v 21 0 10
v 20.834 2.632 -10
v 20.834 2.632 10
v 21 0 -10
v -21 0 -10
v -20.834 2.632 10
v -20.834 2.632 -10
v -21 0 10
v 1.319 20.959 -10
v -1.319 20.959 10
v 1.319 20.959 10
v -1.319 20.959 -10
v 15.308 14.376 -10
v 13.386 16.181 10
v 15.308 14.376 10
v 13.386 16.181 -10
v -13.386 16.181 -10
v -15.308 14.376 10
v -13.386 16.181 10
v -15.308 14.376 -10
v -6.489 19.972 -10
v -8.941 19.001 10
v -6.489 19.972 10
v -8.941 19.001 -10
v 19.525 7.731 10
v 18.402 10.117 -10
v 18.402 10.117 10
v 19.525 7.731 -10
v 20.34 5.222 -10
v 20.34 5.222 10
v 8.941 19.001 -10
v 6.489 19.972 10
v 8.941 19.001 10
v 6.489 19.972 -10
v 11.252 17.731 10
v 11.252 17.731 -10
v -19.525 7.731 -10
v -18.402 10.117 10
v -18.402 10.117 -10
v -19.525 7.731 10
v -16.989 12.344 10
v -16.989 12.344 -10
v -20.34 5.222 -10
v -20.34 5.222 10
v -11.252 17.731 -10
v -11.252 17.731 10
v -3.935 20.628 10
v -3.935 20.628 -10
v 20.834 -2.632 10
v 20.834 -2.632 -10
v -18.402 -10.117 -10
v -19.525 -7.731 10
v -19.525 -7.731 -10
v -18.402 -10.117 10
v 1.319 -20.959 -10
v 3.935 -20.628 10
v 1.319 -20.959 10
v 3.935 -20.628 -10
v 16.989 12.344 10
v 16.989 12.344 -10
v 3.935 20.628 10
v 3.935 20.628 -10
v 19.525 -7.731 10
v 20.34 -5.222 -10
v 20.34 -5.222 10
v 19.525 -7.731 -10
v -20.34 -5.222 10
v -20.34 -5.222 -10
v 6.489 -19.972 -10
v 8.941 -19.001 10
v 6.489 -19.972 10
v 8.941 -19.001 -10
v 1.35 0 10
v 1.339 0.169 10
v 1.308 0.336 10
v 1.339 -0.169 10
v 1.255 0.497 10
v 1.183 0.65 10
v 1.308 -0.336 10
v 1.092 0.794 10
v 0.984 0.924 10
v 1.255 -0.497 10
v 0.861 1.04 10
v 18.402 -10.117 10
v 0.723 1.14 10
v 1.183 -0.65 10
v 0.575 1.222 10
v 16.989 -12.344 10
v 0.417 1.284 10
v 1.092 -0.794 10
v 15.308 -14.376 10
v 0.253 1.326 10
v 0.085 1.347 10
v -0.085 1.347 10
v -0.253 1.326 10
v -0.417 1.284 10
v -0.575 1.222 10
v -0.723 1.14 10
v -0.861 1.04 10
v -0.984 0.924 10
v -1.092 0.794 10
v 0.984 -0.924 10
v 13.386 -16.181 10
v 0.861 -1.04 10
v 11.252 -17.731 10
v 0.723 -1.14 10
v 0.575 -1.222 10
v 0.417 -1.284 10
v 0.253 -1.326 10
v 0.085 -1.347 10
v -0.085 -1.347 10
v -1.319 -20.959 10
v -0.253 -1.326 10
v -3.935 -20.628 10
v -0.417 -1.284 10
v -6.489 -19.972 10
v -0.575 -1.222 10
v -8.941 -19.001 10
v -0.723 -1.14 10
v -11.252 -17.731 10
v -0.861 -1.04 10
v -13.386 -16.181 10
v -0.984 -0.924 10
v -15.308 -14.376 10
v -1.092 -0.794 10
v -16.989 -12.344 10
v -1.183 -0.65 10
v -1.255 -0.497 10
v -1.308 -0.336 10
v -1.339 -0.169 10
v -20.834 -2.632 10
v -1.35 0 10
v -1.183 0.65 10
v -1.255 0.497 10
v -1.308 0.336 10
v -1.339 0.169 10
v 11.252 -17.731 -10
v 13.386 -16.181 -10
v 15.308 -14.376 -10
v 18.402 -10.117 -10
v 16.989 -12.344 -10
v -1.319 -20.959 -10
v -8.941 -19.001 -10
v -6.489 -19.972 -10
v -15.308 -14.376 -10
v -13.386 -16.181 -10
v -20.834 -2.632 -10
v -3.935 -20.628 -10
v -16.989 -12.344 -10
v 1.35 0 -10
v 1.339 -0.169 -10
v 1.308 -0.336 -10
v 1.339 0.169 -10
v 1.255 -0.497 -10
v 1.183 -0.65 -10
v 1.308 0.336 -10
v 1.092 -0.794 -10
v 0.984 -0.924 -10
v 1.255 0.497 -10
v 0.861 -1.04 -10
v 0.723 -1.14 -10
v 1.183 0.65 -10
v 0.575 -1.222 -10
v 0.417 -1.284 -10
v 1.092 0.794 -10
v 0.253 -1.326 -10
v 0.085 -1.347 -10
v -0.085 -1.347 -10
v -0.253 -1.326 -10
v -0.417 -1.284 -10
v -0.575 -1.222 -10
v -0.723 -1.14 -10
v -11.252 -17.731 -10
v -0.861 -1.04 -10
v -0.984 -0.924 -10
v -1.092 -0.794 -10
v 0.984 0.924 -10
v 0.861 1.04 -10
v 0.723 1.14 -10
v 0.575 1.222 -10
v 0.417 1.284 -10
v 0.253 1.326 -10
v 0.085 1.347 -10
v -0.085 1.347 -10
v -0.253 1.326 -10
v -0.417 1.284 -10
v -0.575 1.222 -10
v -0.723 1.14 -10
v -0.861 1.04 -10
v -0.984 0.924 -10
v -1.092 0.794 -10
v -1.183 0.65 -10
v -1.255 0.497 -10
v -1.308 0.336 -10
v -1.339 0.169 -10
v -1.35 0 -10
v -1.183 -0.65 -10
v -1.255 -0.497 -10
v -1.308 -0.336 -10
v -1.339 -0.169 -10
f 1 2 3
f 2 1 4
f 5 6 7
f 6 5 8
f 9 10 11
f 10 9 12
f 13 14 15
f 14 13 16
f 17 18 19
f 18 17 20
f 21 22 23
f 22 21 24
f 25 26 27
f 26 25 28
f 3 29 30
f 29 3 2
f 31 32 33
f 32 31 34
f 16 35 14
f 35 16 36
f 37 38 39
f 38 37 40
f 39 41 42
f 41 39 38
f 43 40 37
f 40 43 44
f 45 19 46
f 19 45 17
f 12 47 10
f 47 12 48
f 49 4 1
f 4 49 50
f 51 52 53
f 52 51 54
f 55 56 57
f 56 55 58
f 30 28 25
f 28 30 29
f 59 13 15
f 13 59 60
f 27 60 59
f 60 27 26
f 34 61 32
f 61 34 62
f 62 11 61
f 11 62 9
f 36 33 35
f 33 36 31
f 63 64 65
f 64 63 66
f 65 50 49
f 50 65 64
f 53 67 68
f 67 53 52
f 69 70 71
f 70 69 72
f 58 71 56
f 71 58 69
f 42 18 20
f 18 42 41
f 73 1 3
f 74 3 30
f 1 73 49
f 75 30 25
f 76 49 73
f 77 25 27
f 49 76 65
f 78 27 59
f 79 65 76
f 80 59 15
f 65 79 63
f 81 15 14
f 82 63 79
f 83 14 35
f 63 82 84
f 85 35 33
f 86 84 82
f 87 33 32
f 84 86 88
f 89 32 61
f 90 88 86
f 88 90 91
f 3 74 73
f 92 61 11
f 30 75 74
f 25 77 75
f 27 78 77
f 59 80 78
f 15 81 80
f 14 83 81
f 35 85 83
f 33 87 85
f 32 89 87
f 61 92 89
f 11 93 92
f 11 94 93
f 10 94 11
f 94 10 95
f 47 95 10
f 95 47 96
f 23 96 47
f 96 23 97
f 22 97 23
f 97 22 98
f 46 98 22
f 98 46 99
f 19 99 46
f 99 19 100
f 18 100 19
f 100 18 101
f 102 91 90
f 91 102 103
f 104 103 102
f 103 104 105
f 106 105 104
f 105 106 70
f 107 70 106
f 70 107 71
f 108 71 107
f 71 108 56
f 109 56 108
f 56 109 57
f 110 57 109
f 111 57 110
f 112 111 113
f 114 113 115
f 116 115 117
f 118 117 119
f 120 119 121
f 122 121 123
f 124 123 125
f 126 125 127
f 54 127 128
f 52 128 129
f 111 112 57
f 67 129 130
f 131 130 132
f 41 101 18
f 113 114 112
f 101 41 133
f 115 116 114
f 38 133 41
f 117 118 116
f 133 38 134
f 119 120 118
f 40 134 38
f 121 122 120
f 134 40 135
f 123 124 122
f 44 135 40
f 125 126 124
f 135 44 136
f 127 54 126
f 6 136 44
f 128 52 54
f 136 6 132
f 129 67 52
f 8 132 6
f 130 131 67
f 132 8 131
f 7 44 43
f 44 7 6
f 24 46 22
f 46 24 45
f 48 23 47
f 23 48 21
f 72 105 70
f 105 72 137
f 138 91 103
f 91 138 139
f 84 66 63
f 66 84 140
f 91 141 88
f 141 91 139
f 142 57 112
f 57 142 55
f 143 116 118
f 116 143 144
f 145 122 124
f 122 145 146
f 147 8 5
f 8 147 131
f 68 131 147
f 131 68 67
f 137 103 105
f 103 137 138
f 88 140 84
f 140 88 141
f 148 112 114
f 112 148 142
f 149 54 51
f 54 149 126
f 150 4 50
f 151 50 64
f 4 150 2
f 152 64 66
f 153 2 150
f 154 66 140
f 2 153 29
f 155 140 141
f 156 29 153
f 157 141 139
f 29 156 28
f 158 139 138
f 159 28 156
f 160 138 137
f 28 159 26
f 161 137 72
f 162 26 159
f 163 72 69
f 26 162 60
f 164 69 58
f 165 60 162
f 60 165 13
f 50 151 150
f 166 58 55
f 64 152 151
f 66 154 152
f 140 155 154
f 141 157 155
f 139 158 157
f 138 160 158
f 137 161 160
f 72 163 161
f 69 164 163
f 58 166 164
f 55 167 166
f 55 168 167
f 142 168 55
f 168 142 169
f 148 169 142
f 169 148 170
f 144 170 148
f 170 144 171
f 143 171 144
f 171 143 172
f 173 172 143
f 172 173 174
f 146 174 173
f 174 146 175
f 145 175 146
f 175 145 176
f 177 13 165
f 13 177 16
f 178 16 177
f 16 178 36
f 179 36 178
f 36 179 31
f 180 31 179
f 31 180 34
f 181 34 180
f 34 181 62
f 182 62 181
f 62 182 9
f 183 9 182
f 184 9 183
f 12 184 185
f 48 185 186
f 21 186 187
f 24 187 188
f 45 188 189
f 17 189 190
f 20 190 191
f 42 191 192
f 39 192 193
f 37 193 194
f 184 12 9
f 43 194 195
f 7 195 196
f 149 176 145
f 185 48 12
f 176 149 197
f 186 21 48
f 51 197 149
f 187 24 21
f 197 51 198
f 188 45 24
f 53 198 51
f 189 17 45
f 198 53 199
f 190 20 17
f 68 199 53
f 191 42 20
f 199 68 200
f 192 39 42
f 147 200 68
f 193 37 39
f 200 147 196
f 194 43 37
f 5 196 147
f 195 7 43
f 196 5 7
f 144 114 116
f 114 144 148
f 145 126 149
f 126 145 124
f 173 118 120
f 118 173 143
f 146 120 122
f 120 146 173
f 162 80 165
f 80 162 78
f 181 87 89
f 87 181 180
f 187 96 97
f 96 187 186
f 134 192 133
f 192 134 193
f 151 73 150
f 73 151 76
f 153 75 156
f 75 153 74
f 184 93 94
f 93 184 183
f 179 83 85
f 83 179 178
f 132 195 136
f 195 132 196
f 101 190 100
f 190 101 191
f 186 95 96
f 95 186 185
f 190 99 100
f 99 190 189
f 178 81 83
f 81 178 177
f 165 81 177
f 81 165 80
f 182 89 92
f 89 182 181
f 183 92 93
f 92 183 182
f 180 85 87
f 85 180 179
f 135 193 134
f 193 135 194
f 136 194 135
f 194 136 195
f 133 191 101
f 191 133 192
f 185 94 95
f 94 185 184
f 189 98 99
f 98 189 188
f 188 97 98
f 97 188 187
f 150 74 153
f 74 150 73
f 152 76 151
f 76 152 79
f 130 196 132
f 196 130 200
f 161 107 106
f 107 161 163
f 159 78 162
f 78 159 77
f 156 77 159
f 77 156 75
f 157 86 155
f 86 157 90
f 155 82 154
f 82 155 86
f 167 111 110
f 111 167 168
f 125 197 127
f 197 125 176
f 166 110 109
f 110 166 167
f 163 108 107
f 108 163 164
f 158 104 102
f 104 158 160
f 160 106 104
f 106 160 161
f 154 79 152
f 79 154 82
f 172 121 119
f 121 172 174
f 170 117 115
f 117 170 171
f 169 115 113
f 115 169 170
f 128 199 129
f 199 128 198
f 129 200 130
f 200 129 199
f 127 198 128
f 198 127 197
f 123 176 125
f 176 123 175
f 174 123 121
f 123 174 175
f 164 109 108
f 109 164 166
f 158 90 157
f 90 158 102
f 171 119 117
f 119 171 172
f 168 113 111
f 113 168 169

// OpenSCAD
$fn = 50;


difference() {
	union() {
		translate(v = [0, 0, -10.0000000000]) {
			cylinder(h = 20, r = 21.0000000000);
		}
	}
	union() {
		translate(v = [0, 0, -100.0000000000]) {
			cylinder(h = 200, r = 1.3500000000);
		}
	}
}
